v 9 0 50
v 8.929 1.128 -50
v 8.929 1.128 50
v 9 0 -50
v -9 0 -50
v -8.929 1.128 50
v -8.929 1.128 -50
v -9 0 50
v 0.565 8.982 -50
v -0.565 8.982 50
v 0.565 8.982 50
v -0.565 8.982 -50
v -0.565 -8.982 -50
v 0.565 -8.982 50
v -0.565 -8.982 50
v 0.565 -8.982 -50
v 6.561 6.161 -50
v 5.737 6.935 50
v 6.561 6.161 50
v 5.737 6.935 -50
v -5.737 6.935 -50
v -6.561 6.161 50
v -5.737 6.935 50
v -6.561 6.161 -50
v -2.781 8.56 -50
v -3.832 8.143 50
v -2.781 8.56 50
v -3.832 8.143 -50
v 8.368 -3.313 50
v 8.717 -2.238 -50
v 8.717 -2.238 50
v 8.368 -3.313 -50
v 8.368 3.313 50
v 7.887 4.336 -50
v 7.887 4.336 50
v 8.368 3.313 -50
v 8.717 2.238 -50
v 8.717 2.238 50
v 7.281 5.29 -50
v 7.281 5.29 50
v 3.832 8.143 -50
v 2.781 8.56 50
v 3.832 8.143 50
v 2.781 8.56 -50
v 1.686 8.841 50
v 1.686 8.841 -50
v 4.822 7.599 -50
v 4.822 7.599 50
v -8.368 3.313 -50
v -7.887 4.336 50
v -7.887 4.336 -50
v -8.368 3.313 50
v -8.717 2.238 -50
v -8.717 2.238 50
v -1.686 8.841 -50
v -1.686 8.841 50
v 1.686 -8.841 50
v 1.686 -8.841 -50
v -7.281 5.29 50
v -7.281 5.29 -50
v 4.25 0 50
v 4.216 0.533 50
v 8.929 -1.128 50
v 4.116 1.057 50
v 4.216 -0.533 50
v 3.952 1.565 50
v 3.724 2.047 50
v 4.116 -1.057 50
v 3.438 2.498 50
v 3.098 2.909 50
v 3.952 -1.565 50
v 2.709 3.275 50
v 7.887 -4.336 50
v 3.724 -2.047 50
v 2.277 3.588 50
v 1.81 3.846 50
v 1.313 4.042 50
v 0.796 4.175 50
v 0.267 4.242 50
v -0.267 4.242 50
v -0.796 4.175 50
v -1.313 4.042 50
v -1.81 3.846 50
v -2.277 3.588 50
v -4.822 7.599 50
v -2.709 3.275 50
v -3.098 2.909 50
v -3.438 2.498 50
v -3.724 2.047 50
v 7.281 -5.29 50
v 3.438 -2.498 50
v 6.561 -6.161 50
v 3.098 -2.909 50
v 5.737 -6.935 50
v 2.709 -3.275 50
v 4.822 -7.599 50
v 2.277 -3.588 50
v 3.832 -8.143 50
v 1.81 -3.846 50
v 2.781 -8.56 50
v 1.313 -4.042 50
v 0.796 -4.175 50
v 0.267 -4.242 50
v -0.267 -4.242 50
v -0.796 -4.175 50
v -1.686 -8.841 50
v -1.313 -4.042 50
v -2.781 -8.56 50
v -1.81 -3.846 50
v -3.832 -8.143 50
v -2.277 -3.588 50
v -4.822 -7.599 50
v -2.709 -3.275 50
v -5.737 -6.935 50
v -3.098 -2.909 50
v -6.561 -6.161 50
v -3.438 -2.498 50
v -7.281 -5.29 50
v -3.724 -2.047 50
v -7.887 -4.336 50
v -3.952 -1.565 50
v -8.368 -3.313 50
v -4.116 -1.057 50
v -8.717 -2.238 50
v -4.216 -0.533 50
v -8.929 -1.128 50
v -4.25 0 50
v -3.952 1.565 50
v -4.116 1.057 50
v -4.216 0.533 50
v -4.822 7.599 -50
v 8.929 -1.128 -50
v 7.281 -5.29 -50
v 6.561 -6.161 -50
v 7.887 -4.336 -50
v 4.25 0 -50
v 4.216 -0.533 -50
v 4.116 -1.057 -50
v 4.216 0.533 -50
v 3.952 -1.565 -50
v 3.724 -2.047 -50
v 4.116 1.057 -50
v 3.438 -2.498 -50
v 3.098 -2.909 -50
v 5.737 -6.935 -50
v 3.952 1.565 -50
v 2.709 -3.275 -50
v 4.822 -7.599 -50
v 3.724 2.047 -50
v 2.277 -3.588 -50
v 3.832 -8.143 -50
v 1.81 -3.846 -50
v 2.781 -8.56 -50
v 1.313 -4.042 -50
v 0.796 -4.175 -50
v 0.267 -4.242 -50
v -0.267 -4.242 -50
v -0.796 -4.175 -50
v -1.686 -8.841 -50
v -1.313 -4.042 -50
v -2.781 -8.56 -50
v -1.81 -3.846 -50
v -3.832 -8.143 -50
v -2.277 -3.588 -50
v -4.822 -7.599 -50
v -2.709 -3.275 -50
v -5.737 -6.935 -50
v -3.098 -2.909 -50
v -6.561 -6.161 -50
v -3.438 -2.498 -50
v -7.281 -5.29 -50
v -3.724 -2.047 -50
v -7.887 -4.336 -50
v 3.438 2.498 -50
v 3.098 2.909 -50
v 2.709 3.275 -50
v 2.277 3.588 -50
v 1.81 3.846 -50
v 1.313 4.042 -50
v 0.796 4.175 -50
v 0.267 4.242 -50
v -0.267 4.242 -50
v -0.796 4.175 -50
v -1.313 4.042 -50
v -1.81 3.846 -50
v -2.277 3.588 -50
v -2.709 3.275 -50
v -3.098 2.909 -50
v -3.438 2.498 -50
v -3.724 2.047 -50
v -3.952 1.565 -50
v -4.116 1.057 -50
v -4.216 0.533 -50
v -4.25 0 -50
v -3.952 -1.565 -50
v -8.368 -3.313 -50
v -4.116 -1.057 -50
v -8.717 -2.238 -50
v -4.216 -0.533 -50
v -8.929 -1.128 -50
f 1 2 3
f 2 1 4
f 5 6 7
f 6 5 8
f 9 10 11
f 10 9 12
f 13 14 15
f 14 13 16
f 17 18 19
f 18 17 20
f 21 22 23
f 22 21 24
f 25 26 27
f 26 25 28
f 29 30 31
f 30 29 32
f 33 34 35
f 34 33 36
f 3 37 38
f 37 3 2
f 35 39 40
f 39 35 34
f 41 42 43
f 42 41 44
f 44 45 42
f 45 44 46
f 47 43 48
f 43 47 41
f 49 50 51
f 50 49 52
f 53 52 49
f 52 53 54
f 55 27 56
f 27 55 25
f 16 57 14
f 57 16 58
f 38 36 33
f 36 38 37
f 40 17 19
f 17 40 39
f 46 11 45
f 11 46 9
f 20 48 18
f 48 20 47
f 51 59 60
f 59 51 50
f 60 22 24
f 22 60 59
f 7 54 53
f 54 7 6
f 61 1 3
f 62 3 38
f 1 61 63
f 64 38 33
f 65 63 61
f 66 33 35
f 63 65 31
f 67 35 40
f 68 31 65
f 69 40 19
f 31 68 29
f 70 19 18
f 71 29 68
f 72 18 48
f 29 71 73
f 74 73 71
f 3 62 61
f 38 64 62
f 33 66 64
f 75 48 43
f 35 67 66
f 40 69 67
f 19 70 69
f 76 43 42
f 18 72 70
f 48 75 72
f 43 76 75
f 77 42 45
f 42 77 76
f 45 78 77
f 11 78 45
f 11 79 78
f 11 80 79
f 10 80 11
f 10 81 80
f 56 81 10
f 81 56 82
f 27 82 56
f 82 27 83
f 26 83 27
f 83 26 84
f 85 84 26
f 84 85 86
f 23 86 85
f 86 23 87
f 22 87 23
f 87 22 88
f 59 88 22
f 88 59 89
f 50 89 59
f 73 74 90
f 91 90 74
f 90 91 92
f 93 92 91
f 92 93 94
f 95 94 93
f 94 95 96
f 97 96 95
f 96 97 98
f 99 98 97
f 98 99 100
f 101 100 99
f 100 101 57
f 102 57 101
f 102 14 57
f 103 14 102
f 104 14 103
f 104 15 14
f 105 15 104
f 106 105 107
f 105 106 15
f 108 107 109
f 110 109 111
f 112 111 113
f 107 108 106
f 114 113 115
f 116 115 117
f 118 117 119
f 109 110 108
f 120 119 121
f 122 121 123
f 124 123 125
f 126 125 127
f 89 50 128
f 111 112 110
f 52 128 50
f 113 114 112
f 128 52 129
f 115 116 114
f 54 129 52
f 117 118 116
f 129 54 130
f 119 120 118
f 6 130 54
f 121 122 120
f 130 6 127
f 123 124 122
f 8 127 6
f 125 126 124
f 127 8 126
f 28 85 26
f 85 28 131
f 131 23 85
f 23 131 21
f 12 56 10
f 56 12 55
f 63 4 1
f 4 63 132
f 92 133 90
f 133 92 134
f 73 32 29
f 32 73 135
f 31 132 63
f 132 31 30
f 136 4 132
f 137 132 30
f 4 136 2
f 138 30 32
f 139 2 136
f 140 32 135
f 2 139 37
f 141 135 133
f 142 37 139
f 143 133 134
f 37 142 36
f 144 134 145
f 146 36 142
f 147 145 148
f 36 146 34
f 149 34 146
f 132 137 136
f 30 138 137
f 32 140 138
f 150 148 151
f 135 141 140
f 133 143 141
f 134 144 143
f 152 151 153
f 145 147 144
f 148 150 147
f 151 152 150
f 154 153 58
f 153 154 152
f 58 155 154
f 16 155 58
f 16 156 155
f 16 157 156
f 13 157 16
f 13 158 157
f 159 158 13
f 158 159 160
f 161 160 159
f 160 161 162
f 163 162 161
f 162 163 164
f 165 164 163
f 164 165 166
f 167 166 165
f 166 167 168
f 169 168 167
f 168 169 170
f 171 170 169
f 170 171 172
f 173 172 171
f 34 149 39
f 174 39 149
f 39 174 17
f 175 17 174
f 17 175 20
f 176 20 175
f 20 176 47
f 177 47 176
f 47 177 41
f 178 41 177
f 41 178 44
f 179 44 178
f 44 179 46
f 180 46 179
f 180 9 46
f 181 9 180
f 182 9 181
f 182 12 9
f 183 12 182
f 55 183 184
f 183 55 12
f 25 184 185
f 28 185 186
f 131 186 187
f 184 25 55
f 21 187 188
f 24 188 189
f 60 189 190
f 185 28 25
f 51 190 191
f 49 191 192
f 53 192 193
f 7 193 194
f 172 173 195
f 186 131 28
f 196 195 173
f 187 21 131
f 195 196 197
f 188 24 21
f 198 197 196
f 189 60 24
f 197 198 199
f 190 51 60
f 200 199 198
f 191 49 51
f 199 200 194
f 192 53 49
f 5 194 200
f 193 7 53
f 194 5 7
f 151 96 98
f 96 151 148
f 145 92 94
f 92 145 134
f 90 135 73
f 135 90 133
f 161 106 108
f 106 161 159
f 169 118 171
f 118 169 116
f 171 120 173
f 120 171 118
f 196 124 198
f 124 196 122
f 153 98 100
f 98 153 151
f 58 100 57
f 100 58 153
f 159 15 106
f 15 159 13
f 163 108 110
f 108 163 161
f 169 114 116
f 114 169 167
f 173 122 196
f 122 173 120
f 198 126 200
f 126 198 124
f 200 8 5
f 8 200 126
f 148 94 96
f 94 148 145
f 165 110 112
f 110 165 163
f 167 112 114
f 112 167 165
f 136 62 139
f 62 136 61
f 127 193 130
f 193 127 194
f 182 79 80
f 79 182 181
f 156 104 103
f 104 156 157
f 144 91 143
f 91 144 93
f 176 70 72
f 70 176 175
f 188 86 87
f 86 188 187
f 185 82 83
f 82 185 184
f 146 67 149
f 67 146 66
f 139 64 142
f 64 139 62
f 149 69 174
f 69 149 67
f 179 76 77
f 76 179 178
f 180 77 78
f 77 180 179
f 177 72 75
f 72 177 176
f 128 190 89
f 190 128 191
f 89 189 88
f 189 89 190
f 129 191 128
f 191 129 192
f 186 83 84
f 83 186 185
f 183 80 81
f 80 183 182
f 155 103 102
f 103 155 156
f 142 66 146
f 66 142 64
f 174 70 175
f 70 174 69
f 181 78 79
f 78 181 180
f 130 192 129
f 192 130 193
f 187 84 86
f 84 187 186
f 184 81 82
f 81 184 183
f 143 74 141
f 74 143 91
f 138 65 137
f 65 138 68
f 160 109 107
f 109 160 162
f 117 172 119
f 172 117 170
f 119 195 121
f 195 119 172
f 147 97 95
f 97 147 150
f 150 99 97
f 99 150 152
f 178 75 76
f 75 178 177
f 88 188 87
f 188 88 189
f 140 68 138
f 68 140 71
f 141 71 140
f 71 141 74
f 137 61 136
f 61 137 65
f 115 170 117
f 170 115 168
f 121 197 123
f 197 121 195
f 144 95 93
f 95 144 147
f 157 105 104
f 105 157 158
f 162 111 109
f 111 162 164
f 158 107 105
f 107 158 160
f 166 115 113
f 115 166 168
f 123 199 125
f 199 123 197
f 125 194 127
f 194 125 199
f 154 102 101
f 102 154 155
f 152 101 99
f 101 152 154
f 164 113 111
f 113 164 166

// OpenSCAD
$fn = 50;


difference() {
	union() {
		translate(v = [0, 0, -50.0000000000]) {
			cylinder(h = 100, r = 9.0000000000);
		}
	}
	union() {
		translate(v = [0, 0, -100.0000000000]) {
			cylinder(h = 200, r = 4.2500000000);
		}
	}
}
